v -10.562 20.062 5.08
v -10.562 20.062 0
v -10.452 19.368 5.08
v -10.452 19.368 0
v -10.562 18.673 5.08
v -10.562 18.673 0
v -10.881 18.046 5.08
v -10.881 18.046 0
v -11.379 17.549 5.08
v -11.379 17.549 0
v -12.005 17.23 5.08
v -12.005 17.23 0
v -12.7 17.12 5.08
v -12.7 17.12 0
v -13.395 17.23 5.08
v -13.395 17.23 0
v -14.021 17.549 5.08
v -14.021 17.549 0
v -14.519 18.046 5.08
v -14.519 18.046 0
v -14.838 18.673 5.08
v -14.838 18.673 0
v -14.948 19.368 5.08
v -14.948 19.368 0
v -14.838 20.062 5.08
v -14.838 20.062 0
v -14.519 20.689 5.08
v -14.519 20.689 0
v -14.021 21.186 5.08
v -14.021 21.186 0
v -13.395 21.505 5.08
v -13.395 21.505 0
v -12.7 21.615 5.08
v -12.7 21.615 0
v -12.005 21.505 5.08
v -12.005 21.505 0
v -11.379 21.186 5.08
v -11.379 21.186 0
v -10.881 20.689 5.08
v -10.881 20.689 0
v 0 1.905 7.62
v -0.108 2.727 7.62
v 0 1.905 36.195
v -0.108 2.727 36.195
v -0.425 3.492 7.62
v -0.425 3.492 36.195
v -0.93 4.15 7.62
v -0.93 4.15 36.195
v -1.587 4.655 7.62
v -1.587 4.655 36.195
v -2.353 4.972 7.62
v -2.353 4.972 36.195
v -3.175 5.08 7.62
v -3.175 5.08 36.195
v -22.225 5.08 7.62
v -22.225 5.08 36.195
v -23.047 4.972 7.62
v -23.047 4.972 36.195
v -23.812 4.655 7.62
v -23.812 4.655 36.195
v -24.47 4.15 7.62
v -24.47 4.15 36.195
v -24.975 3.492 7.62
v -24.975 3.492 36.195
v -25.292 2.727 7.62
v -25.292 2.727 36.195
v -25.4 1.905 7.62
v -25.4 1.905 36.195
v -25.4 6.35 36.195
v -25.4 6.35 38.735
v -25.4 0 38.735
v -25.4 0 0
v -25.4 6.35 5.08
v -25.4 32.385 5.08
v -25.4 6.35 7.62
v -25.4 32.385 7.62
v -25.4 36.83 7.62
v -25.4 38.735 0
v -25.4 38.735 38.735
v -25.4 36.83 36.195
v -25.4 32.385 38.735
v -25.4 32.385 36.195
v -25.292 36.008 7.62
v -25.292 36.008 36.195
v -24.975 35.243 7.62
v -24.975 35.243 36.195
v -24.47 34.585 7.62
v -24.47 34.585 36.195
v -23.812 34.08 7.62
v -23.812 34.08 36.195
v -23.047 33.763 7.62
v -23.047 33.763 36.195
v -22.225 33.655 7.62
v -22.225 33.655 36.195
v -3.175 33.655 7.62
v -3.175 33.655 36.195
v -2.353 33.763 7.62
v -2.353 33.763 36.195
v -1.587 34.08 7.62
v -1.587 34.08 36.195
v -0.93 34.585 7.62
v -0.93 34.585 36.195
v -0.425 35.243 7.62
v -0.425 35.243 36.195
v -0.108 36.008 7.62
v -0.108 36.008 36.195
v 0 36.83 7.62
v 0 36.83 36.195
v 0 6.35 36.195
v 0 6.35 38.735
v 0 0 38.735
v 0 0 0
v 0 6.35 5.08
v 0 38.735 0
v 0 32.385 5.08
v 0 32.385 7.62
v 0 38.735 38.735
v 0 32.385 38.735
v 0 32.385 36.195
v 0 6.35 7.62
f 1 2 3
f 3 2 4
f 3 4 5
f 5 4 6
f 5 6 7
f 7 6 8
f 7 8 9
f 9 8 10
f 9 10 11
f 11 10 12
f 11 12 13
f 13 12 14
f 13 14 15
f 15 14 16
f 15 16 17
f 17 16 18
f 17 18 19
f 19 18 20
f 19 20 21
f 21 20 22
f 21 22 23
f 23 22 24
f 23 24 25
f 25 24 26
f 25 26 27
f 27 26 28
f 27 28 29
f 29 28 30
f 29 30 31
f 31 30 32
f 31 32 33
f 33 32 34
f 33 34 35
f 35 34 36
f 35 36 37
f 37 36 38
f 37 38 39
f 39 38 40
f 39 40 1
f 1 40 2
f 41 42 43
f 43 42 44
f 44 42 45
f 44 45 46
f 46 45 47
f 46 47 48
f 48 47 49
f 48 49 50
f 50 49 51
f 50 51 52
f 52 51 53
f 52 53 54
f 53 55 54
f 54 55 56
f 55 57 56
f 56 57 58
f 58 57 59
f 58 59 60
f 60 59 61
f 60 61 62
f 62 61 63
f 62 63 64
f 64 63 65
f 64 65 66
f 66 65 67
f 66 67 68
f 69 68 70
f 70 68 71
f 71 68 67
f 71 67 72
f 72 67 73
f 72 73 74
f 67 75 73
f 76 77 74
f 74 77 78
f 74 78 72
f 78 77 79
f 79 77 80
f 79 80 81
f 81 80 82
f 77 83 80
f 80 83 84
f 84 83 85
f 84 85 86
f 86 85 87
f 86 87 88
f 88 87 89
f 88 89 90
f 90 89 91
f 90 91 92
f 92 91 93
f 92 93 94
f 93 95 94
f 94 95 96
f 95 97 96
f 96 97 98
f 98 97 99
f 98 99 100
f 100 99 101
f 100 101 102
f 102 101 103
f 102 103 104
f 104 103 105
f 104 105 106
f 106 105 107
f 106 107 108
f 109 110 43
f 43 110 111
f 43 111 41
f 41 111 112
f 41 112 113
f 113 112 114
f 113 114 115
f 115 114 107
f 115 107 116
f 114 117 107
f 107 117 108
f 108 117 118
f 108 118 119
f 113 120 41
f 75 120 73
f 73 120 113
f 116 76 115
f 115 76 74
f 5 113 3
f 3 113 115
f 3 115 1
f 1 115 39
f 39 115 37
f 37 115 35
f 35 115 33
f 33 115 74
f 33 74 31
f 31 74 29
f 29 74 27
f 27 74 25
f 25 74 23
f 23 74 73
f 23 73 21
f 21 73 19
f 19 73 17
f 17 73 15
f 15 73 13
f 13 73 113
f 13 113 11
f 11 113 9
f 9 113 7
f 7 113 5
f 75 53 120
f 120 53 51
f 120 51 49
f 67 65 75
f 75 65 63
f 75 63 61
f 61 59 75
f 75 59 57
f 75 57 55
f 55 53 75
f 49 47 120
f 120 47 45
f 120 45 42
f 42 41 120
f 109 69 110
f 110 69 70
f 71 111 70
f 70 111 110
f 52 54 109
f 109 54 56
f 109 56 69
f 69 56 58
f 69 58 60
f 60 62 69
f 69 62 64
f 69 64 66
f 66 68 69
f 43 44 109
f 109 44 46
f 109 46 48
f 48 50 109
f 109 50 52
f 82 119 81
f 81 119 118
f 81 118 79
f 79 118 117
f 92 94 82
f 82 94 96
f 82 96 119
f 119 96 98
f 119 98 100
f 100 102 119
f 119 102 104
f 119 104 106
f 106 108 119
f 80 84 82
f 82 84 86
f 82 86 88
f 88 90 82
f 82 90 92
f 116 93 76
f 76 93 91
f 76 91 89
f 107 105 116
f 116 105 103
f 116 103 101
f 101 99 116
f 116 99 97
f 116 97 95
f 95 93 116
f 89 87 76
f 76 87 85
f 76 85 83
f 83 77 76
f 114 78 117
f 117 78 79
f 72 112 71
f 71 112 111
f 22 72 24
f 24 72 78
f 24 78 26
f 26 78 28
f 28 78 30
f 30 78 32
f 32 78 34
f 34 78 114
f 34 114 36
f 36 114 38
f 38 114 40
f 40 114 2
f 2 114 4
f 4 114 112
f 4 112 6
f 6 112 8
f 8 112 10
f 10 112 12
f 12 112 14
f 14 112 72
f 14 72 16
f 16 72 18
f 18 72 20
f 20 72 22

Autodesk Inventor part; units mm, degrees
ref_plane "YZ Plane" through (0, 0, 0) normal (1, 0, 0) x (0, 1, 0)
ref_plane "XZ Plane" through (0, 0, 0) normal (0, 1, 0) x (-1, 0, 0)
ref_plane "XY Plane" through (0, 0, 0) normal (0, 0, 1) x (1, 0, 0)
sketch "Sketch1" plane through (0, 0, 0) normal (0, 0, 1) x (1, 0, 0)
  line L0 (0, 0) -> (-25.4, 0)
  line L1 (-25.4, 0) -> (-25.4, 38.735)
  line L2 (-25.4, 38.735) -> (0, 38.735)
  line L3 (0, 38.735) -> (0, 0)
  dimension "d0" = 25.4
  dimension "d1" = 38.735
extrude "Extrusion1" add sketch "Sketch1" along normal blind 7.62
sketch "Sketch5" plane through (0, 0, 7.62) normal (0, 0, 1) x (1, 0, 0)
  line L0 (-25.4, 0) -> (0, 0) projected
  line L1 (-25.4, 38.735) -> (-25.4, 0) projected
  line L2 (0, 0) -> (-25.4, 0)
  line L3 (-25.4, 0) -> (-25.4, 5.08)
  line L4 (-25.4, 5.08) -> (0, 5.08)
  line L5 (0, 5.08) -> (0, 0)
  line L6 (0, 38.735) -> (-25.4, 38.735)
  line L7 (-25.4, 38.735) -> (-25.4, 33.655)
  line L8 (-25.4, 33.655) -> (0, 33.655)
  line L9 (0, 33.655) -> (0, 38.735)
  line L10 (0, 38.735) -> (-25.4, 38.735) projected
  dimension "d29" = 5.08
  dimension "d30" = 5.08
  dimension "d31" = 0
extrude "Extrusion4" add sketch "Sketch5" along normal blind 28.575
sketch "Sketch6" plane through (0, 0, 36.195) normal (0, 0, 1) x (1, 0, 0)
  line L0 (-25.4, 0) -> (-25.4, 38.735) projected
  line L1 (-25.4, 38.735) -> (0, 38.735)
  line L2 (0, 38.735) -> (0, 32.385)
  line L3 (0, 32.385) -> (-25.4, 32.385)
  line L4 (-25.4, 32.385) -> (-25.4, 38.735)
  line L5 (-25.4, 0) -> (0, 0)
  line L6 (0, 0) -> (0, 6.35)
  line L7 (0, 6.35) -> (-25.4, 6.35)
  line L8 (-25.4, 6.35) -> (-25.4, 0)
  line L9 (-25.4, 33.655) -> (0, 33.655) projected
  dimension "d34" = 5.08
  dimension "d35" = 6.35
  dimension "d36" = 6.35
  dimension "d37" = 25.4
  dimension "d38" = 25.4
extrude "Extrusion5" add sketch "Sketch6" along normal blind 2.54
sketch "Sketch7" plane through (0, 0, 7.62) normal (0, 0, 1) x (1, 0, 0)
  line L0 (-25.4, 33.655) -> (-25.4, 5.08) projected
  line L1 (-25.4, 32.385) -> (0, 32.385)
  line L2 (0, 32.385) -> (0, 6.35)
  line L3 (0, 6.35) -> (-25.4, 6.35)
  line L4 (-25.4, 6.35) -> (-25.4, 32.385)
  line L5 (-25.4, 5.08) -> (0, 5.08) projected
  point P0 (0, 0)
  dimension "d41" = 26.035
  dimension "d42" = 1.27
  dimension "d43" = 25.4
extrude "Extrusion6" cut sketch "Sketch7" against normal blind 2.54
fillet "Fillet2" radius 3.175 4 edges at (0, 33.655, 21.9075) (-25.4, 33.655, 21.9075) (-25.4, 5.08, 21.9075) (0, 5.08, 21.9075)
sketch "Sketch8" plane through (0, 0, 0) normal (0, 0, -1) x (-1, 0, 0)
  line L0 (25.4, 0) -> (25.4, 38.735) projected
  line L1 (0, 38.735) -> (0, 0) projected
  line L2 (25.4, 38.735) -> (0, 38.735) projected
  line L3 (0, 0) -> (25.4, 0) projected
  point P0 (12.7, 19.3675)
  dimension "d47" = 12.7
  dimension "d48" = 25.4
  dimension "d49" = 38.735
  dimension "d50" = 19.3675
hole "Hole2" at (-12.7, 19.3675, 0) direction (0, 0, 1) diameter 4.4958 end through all clearance for "Flat Head Machine Screw (82)" size "#8" standard "Ansi Unified Screw Threads"
equation "\"d30\" = d29"
equation "\"d36\" = d35"
equation "\"d47\" = 0.5 * d48"
equation "\"d50\" = 0.5 * d49"
properties part number "chain tensioner"
